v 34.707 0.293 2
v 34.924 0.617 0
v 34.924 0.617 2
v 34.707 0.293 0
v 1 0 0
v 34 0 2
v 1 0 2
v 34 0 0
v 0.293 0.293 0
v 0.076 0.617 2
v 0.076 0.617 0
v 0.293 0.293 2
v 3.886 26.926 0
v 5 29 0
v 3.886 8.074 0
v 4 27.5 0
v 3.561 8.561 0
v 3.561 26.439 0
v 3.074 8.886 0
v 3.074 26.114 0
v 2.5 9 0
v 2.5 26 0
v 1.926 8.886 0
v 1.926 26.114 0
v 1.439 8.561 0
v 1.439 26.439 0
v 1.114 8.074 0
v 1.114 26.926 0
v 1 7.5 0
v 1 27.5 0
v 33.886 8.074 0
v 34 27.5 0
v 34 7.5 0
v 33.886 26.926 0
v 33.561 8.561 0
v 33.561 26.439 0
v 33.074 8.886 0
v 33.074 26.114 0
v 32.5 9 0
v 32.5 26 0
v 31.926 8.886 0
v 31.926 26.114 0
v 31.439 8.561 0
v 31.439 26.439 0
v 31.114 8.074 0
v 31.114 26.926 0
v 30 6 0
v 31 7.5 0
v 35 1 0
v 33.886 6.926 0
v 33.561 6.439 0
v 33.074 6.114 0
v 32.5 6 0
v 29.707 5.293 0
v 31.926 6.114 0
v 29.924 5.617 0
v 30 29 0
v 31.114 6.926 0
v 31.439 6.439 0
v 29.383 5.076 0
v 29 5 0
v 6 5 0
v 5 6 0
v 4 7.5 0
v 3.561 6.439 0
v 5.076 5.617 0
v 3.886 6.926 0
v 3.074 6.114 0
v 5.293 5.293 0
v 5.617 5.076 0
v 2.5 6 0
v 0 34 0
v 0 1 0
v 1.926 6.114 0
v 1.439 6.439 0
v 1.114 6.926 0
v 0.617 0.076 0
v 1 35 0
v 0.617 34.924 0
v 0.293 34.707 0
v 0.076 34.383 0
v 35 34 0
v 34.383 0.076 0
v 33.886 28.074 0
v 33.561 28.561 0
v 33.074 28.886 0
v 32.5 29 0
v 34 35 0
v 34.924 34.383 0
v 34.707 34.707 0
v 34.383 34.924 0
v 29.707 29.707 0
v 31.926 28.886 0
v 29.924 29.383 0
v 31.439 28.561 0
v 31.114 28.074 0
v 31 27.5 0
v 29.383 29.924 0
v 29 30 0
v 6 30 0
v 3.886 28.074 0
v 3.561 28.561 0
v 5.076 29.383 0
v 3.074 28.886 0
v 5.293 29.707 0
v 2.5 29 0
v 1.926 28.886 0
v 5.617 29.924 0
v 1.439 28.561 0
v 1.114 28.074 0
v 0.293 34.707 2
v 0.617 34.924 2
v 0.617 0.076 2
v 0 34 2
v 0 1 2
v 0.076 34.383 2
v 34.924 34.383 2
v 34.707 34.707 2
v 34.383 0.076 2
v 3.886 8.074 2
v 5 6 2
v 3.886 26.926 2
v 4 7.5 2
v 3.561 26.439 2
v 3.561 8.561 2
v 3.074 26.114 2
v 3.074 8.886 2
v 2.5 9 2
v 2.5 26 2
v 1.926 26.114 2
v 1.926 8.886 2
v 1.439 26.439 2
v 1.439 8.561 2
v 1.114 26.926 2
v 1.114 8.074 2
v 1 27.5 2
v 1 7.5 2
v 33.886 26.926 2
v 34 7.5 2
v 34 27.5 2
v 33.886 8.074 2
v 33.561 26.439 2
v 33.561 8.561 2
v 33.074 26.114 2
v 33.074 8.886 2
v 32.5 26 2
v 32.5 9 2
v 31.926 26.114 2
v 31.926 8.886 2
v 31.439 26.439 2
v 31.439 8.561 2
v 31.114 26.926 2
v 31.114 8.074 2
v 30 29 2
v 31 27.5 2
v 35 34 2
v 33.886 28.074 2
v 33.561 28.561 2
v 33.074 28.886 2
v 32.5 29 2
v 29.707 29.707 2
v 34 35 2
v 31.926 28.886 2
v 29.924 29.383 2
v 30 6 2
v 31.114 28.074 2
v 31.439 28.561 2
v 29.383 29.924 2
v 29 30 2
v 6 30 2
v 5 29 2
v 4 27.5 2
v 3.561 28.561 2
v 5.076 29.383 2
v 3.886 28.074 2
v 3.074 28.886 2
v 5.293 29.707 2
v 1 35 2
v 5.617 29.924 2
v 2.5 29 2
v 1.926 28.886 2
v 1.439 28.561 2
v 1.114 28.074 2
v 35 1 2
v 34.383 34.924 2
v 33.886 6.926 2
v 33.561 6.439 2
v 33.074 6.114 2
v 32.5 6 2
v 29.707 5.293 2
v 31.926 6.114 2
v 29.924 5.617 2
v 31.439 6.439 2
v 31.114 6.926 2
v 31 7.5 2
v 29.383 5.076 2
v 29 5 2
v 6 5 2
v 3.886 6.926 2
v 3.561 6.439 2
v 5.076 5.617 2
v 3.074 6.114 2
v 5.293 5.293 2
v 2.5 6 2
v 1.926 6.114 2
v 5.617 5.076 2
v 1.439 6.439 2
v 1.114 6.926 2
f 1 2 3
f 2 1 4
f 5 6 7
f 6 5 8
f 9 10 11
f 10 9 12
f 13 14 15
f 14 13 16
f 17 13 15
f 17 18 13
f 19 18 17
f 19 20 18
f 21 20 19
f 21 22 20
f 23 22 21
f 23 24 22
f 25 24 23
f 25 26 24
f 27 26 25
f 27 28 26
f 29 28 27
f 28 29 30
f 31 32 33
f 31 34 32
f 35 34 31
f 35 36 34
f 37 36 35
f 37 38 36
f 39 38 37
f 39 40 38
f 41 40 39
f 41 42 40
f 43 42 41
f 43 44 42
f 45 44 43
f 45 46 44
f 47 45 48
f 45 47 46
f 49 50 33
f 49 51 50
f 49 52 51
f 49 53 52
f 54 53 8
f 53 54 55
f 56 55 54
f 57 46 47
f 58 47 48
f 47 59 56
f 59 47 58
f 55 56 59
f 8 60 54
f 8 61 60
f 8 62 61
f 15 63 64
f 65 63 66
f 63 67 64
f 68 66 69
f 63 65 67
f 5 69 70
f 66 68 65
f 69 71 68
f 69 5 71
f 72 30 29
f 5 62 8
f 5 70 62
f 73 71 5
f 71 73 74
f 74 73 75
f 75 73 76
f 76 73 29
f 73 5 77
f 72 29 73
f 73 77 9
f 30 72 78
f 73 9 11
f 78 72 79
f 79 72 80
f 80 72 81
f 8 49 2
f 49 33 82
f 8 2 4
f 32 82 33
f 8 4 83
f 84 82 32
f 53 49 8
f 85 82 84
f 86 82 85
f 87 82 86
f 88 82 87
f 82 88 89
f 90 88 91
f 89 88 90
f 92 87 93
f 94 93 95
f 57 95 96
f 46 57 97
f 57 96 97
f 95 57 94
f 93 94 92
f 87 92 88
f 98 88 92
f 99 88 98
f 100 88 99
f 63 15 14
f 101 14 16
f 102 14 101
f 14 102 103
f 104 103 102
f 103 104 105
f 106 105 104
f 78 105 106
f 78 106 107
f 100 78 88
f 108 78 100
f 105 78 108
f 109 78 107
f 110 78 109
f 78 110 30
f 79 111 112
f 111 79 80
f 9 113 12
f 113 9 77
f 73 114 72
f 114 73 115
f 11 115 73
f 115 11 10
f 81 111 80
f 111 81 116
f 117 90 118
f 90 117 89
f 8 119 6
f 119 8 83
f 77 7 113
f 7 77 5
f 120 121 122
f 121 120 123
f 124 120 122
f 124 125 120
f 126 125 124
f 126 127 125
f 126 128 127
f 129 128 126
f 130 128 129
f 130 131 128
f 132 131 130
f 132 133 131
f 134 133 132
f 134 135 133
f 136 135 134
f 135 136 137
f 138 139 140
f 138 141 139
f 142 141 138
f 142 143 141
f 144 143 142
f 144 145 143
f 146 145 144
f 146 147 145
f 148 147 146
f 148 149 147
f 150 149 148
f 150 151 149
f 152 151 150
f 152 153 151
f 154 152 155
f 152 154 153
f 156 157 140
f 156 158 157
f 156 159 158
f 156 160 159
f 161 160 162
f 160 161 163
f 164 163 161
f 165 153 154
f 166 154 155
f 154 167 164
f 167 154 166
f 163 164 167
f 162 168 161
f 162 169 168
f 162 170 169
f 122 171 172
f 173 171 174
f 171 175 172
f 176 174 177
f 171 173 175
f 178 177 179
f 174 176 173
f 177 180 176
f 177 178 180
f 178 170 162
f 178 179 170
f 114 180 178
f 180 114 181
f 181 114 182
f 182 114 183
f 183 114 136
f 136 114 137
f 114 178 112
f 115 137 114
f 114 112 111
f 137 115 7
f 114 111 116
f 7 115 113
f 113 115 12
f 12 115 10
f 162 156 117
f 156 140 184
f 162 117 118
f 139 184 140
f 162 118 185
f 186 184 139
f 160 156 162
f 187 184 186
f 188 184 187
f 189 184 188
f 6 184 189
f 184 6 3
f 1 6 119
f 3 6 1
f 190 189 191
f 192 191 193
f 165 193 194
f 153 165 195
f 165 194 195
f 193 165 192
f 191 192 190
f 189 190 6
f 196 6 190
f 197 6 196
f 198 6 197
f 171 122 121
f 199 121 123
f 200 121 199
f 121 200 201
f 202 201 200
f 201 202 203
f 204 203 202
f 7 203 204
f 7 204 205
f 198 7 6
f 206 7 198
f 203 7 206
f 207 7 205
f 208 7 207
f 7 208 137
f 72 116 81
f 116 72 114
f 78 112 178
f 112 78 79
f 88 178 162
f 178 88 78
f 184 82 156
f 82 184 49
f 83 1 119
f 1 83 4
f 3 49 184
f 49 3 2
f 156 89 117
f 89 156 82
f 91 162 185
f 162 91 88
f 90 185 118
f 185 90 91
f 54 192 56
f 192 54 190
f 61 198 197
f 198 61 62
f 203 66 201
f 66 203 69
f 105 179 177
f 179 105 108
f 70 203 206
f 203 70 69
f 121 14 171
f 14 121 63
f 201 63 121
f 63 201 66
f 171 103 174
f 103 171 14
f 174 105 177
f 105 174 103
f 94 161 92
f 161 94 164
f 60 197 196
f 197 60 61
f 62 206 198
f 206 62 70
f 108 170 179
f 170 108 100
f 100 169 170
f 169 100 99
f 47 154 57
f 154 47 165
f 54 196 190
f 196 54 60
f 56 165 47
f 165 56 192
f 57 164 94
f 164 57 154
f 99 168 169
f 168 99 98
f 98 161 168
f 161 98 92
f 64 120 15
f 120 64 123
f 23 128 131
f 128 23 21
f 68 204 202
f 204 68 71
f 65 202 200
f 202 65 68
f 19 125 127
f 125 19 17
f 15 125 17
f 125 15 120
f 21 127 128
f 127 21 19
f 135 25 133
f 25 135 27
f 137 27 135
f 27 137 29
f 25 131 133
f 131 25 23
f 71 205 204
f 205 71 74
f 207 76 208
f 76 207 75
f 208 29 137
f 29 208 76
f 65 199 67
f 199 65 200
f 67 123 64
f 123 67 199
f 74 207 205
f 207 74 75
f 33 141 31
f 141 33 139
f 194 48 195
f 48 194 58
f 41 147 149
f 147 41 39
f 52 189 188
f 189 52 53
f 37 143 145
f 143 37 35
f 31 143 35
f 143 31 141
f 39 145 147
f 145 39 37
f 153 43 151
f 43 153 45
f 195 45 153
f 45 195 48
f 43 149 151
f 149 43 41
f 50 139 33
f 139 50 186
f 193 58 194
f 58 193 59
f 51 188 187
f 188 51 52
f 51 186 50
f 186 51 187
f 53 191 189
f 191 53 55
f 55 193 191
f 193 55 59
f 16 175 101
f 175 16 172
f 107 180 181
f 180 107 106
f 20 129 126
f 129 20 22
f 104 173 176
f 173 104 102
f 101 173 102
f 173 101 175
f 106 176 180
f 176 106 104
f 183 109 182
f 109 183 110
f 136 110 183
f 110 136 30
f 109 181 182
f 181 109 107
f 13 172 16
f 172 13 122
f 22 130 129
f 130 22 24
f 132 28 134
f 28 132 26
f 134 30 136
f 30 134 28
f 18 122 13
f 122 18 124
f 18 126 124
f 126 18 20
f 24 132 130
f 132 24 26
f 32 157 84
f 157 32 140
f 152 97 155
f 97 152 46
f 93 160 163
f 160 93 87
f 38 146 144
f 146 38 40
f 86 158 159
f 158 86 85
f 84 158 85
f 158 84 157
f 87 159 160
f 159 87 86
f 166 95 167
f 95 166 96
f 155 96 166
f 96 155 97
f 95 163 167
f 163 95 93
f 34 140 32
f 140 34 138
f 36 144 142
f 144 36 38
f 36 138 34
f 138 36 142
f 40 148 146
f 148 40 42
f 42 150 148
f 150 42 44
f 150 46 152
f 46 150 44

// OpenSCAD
// file: basics.scad
// basics 1

$fn = 16;

cellRadius = 1.0;

cellSize = 5.0;

layerHeight = 2.0;

pinOffset = 0.15;

module cellCorner(height = layerHeight) {
    cylinder(h = height, r = cellRadius);
}

module cell(height = layerHeight) {
    translate([0, 0, 0]) {
        hull() {
            translate([cellRadius,            cellRadius, 0])            cellCorner(height);
            translate([cellSize - cellRadius, cellRadius, 0])            cellCorner(height);
            translate([cellRadius,            cellSize - cellRadius, 0]) cellCorner(height);
            translate([cellSize - cellRadius, cellSize - cellRadius, 0]) cellCorner(height);
        }
    }
}

module pin(pinOffset = 0) {
    cylinder(h = layerHeight + 0.2, r = cellRadius * 1.5 - pinOffset);
}
// main file
// top blech 2

$fn = 16;

cellRadius = 1.0;

cellSize = 5.0;

layerHeight = 2.0;

blechWidth  = cellSize * 7;
blechLength = cellSize * 7;

cellCenter = cellSize / 2;

holeOffset = 0.15;

pinXOffset = 1.75;
pinYOffset = 1.5;


use <basics.scad>

module topBlech() {
    translate([0, 0, 0]) {
        difference() {
            color("gray") hull() {
                translate([0                    , 0,                      0]) cell();
                translate([blechWidth - cellSize, 0,                      0]) cell();
                translate([0                    , blechLength - cellSize, 0]) cell();
                translate([blechWidth - cellSize, blechLength - cellSize, 0]) cell();
            }
            hull() {
                translate([cellSize                 , cellSize,                   -0.1]) cell(layerHeight + 0.2);
                translate([blechWidth - cellSize * 2, cellSize,                   -0.1]) cell(layerHeight + 0.2);
                translate([cellSize                 , blechLength - cellSize * 2, -0.1]) cell(layerHeight + 0.2);
                translate([blechWidth - cellSize * 2, blechLength - cellSize * 2, -0.1]) cell(layerHeight + 0.2);
            }
            translate([cellSize / 2, cellSize * 1.5, 0]) pin();
            translate([blechWidth - cellSize / 2, cellSize * 1.5, 0]) pin();
            translate([cellSize / 2, blechLength - cellSize * 1.5, 0]) pin();
            translate([blechWidth - cellSize / 2, blechLength - cellSize * 1.5, 0]) pin();
        }
    }
}

topBlech();
